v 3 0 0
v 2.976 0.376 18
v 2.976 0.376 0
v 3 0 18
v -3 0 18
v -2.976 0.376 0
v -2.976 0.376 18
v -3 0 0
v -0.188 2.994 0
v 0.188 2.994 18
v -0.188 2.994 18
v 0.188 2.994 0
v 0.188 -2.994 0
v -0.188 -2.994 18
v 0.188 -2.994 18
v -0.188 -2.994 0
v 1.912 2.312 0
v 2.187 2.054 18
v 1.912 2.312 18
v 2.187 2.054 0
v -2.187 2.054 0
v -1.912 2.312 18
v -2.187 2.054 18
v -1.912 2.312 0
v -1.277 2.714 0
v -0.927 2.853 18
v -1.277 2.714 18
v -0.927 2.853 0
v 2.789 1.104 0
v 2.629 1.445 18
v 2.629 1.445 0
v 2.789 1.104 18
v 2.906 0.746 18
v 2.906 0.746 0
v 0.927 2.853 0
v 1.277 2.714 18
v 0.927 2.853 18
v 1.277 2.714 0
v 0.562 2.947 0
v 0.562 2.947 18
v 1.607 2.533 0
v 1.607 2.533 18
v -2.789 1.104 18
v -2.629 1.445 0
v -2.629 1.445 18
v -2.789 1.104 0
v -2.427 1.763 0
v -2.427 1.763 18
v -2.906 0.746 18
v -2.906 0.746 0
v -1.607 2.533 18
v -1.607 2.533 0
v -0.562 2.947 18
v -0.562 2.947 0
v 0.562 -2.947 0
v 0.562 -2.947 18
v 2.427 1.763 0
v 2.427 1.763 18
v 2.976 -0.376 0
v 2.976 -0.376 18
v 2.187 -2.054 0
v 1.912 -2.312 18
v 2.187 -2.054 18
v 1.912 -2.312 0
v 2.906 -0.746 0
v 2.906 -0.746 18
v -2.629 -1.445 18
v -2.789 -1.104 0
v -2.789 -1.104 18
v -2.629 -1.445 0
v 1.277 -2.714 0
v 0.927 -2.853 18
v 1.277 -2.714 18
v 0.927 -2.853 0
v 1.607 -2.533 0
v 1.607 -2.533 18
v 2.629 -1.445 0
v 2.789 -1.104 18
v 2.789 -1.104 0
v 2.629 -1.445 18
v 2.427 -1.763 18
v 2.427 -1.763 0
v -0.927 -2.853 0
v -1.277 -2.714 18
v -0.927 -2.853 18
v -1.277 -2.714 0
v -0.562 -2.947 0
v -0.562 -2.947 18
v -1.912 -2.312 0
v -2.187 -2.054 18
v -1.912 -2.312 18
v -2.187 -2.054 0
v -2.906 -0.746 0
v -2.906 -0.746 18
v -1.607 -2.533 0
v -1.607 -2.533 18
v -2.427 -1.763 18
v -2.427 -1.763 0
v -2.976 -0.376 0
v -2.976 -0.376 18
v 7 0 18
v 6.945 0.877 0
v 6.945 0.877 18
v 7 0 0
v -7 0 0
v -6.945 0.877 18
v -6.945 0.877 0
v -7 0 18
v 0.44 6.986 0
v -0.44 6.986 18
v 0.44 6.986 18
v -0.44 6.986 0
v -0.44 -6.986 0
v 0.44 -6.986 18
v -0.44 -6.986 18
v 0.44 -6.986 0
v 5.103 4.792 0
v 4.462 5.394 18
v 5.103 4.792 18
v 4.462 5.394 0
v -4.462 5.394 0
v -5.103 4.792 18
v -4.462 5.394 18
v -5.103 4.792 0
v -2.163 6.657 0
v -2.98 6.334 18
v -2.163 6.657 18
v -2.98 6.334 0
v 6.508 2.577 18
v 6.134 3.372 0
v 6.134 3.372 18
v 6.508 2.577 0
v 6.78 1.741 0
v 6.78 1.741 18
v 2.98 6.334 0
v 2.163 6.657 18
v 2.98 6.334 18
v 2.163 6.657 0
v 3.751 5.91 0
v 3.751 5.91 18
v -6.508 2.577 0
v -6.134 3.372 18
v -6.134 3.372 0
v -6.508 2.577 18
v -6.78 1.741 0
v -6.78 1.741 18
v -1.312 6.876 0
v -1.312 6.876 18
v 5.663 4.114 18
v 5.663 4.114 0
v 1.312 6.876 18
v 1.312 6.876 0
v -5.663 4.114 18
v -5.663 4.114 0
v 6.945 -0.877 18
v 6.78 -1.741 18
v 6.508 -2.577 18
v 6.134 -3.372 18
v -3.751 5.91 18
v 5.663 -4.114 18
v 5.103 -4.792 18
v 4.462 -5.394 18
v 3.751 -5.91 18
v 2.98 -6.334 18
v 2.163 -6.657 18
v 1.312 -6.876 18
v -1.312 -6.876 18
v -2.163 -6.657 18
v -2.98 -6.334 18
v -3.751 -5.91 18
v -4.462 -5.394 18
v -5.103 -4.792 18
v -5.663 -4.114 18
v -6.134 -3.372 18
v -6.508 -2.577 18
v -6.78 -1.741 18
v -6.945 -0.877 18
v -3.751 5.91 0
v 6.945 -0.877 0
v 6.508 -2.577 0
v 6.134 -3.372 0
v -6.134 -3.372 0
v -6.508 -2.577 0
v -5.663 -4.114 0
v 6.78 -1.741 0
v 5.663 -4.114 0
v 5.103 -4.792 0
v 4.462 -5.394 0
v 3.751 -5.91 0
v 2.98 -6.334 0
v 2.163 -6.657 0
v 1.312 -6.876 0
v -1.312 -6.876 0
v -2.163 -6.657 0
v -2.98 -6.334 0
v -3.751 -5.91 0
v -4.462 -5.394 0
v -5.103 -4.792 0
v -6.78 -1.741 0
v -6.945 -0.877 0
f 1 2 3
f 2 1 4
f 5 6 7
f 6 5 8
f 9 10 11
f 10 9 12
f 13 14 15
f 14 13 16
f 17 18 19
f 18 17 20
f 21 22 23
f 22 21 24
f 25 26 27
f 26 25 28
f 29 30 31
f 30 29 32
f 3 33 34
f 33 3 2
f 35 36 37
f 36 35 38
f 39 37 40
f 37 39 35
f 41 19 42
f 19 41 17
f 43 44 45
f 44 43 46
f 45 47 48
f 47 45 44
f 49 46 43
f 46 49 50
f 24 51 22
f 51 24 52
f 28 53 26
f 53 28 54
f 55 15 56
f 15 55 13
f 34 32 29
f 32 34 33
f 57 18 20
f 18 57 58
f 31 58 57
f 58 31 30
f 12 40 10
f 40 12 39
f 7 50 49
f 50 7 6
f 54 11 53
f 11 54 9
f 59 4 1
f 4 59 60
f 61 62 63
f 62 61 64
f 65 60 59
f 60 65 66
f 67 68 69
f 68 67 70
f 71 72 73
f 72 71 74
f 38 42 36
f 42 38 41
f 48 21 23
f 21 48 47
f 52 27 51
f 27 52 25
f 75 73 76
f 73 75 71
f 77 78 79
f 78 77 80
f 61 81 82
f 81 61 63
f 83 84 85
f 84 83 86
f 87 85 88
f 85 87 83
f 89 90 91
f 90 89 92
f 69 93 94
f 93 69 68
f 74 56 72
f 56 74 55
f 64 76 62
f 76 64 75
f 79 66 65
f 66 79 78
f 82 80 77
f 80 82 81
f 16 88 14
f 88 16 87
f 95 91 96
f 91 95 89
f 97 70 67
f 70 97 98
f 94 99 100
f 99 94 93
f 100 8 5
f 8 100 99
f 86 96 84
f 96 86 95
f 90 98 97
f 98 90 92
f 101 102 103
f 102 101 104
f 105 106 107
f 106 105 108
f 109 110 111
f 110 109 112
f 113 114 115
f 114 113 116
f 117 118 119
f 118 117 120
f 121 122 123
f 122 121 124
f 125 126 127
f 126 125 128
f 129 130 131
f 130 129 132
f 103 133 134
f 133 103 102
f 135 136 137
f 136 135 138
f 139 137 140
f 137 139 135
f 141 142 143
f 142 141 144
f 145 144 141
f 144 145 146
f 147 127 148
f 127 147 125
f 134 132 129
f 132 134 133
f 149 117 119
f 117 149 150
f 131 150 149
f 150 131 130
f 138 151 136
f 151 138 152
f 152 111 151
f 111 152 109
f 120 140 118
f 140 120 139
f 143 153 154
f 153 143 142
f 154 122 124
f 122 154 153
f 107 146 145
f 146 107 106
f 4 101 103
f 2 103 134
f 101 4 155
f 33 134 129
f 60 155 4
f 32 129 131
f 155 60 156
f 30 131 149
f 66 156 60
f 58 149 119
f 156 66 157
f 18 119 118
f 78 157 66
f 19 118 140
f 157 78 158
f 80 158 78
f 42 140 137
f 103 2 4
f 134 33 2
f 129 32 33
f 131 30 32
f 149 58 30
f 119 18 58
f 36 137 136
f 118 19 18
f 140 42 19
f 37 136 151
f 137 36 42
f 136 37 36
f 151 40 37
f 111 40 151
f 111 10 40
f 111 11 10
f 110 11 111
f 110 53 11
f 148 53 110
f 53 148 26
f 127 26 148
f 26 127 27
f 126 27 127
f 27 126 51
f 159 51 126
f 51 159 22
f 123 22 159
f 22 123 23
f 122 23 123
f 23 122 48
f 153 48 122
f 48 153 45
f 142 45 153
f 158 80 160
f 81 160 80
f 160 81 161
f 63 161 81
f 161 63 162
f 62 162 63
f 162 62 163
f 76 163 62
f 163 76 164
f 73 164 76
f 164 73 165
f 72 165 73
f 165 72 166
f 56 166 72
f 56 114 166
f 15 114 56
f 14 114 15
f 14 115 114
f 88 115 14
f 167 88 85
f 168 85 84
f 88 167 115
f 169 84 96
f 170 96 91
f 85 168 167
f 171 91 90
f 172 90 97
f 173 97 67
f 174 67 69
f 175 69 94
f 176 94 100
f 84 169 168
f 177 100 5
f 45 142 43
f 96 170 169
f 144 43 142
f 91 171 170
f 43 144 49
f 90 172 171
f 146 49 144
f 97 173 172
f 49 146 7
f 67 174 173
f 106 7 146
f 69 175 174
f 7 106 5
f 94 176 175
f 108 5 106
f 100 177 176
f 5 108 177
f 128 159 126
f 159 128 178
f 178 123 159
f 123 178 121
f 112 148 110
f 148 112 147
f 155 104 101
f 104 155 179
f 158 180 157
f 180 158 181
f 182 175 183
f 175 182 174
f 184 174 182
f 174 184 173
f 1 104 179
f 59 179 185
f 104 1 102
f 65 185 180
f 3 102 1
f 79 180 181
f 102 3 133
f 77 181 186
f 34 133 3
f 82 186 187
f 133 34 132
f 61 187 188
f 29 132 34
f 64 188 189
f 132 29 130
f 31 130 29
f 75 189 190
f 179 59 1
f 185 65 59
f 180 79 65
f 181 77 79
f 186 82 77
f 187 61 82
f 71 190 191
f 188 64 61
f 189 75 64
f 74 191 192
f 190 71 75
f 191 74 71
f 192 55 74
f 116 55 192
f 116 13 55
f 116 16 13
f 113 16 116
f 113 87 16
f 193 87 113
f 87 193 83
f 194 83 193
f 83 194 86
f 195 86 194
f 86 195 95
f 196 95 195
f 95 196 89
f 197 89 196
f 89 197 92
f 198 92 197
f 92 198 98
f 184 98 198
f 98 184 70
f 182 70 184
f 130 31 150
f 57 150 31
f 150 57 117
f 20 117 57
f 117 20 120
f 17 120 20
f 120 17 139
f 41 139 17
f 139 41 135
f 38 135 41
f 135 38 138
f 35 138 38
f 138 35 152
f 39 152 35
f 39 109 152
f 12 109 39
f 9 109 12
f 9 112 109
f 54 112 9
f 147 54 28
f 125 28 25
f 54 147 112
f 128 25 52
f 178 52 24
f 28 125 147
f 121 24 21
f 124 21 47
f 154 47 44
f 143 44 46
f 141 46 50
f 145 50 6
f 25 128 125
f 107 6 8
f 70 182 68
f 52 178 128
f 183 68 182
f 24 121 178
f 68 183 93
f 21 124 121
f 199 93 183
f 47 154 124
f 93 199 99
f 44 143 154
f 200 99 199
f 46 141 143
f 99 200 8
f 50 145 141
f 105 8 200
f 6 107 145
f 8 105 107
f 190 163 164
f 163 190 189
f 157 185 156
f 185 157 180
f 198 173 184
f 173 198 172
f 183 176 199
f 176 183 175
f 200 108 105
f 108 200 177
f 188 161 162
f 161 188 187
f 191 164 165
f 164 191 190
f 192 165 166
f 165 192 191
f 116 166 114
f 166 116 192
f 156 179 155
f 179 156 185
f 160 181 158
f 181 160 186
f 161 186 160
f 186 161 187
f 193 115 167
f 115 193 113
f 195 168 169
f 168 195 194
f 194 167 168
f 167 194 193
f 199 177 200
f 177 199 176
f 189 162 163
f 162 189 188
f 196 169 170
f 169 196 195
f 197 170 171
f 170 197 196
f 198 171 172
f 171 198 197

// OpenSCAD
$fn = 50;


difference() {
	union() {
		*color(alpha = 1.0000000000, c = "gray") {
			translate(v = [0, 7, 0]) {
				linear_extrude(height = 1) {
					text(font = "Arial:style=Bold", halign = "center", size = 4.5000000000, text = "COMMENT plate main", valign = "center");
				}
			}
		}
		*color(alpha = 1.0000000000, c = "gray") {
			translate(v = [0, 14, 0]) {
				linear_extrude(height = 1) {
					text(font = "Arial:style=Bold", halign = "center", size = 4.5000000000, text = "COMMENT description oobb_plate_shape_p_type_18_depth_1_width_1_height_18_thickness_true_both_holes", valign = "center");
				}
			}
		}
		cylinder(h = 18, r = 7.0000000000);
	}
	union() {
		*color(alpha = 1.0000000000, c = "gray") {
			translate(v = [0, 7, 0]) {
				linear_extrude(height = 1) {
					text(font = "Arial:style=Bold", halign = "center", size = 4.5000000000, text = "COMMENT holes main", valign = "center");
				}
			}
		}
		*color(alpha = 1.0000000000, c = "gray") {
			translate(v = [0, 14, 0]) {
				linear_extrude(height = 1) {
					text(font = "Arial:style=Bold", halign = "center", size = 4.5000000000, text = "COMMENT description oobb_holes_shape_n_type_1_width_1_height_18_thickness_true_both_holes", valign = "center");
				}
			}
		}
		translate(v = [0, 0, -50]) {
			cylinder(h = 100, r = 3.0000000000);
		}
		translate(v = [0, 0, -50]) {
			cylinder(h = 100, r = 1.5000000000);
		}
	}
}
